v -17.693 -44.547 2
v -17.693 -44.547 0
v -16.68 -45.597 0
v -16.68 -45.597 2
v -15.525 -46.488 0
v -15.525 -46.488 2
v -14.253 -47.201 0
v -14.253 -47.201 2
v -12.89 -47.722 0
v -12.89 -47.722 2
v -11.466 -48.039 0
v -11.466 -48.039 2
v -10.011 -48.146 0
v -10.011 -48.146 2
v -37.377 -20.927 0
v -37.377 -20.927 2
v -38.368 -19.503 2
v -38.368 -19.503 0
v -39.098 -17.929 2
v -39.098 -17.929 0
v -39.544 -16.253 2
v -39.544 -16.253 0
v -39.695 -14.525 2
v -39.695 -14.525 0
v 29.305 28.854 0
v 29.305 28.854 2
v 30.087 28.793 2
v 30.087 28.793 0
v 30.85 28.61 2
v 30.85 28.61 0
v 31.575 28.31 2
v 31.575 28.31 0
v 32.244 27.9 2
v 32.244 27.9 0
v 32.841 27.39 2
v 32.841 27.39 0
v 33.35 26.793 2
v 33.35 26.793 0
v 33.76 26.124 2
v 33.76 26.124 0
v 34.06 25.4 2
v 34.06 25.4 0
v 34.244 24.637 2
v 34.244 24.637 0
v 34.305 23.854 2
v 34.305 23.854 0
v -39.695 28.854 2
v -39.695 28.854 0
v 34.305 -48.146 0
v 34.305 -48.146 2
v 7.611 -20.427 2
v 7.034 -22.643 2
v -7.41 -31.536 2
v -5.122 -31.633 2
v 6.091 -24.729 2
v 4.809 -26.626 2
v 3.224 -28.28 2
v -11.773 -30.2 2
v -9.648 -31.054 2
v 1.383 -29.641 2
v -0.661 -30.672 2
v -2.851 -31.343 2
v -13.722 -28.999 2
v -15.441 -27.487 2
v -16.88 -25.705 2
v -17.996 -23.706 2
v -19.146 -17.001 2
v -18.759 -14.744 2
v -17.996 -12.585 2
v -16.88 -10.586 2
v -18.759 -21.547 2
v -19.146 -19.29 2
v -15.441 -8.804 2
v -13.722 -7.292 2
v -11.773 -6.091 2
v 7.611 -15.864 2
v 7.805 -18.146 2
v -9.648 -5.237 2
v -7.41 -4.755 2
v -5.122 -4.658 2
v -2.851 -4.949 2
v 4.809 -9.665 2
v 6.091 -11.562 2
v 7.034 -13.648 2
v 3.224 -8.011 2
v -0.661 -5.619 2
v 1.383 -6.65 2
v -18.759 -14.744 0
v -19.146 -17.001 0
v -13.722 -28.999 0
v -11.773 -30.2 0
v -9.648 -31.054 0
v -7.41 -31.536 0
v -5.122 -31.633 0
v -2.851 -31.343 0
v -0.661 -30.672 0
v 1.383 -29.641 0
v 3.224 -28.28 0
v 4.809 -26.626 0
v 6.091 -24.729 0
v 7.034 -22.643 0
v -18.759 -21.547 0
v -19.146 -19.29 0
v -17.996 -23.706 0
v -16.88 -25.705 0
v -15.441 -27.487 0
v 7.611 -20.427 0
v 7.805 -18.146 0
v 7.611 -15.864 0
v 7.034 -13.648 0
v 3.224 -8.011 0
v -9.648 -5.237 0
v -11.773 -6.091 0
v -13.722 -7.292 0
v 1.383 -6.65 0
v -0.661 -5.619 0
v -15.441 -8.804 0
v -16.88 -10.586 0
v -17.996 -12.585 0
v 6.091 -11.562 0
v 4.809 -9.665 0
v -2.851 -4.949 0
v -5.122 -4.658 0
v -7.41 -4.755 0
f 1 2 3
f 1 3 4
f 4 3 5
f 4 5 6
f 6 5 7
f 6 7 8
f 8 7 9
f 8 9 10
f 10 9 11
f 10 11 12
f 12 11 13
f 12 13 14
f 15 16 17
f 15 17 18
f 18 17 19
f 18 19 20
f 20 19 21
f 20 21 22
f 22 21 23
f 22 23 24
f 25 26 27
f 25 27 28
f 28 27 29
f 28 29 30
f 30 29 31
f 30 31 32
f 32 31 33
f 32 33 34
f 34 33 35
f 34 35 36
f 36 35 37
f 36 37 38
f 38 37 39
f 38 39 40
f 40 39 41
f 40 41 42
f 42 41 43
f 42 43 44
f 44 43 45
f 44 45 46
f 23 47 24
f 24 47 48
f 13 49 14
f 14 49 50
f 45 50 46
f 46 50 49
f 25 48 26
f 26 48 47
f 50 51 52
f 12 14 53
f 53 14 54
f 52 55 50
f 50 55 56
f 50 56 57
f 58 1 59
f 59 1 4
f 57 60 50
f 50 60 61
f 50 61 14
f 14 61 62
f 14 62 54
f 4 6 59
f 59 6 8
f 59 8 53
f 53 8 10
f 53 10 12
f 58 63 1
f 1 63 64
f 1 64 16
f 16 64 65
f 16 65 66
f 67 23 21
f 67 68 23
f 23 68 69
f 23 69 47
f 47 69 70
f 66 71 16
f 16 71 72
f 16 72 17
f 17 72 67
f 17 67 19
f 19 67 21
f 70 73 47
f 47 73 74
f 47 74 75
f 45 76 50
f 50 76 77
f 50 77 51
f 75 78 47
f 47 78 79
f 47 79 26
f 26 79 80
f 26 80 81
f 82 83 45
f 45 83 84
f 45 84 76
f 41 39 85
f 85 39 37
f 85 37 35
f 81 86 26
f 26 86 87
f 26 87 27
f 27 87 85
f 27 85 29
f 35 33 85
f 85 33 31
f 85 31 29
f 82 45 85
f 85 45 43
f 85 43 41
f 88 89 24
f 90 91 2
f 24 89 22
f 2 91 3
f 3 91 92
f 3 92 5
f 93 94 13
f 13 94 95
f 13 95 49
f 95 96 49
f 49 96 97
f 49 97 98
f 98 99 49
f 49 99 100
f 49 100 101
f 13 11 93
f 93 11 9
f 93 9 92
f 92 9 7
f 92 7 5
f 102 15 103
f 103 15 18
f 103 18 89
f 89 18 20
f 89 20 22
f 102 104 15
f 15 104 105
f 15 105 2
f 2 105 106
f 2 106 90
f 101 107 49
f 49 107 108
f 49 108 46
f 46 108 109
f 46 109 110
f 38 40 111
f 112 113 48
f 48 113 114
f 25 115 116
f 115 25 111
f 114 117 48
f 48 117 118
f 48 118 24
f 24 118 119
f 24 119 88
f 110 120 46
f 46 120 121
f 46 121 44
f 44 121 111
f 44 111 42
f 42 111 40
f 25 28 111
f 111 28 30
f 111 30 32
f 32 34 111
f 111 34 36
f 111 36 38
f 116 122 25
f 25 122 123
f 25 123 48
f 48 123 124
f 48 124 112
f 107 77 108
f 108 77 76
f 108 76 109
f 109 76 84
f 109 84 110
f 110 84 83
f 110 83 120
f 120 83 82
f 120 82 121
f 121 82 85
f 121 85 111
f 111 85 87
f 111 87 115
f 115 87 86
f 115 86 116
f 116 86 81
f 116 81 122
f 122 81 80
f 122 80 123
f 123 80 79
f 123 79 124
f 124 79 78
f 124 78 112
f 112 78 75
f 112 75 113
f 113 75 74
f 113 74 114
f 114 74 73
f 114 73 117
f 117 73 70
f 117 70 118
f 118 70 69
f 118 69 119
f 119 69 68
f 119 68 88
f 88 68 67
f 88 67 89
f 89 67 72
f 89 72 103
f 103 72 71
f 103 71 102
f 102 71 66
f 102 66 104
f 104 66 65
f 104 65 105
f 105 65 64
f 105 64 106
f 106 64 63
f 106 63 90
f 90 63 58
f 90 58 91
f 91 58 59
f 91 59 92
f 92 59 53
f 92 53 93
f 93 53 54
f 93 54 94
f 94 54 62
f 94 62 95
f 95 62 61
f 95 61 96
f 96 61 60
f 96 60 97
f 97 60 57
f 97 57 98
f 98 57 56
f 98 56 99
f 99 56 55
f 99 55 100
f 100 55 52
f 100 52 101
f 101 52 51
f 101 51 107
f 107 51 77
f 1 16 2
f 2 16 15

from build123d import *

# Parameters (mm, degrees)
ESBO_O1_W                  = 74
ESBO_O1_H                  = 77
RESSALTO_EXTRUS_O1_DEPTH   = 2
ESBO_O2_R                  = 13.5
CORTE_EXTRUS_O2_DEPTH      = 2
CORTE_EXTRUS_O4_DEPTH      = 1
CORTE_EXTRUS_O4_DEPTH_BACK = 3
FILETE1_R                  = 5
FILETE3_R                  = 10
FILETE4_R                  = 10


with BuildPart() as part:
    # Esboço1 → Ressalto-extrusão1 (new body)
    with BuildSketch(Plane.XY):
        with Locations((-2.694889042, -9.645522388)):
            Rectangle(ESBO_O1_W, ESBO_O1_H)
    extrude(amount=RESSALTO_EXTRUS_O1_DEPTH)

    # Esboço2 → Corte-extrusão2 (cut)
    with BuildSketch(Plane.XY.offset(2)):
        with Locations((-5.694889042, -18.145522388)):
            Circle(ESBO_O2_R)
    extrude(amount=-CORTE_EXTRUS_O2_DEPTH, mode=Mode.SUBTRACT)

    # Esboço3 → Corte-extrusão4 (cut, two sides)
    with BuildSketch(Plane.XY.offset(2)) as corte_extrus_o4_sk:
        Polygon((-162.954500024, 129.766010791), (-39.694889042, -18.145522388), (-14.694889042, -48.145522388), (108.564721941, -196.057055567), (-187.258344417, -442.576277532), (-458.777566382, -116.753211174), align=None)
    extrude(amount=CORTE_EXTRUS_O4_DEPTH, mode=Mode.SUBTRACT)
    extrude(corte_extrus_o4_sk.sketch, amount=-CORTE_EXTRUS_O4_DEPTH_BACK, mode=Mode.SUBTRACT)

    # Filete1
    filete1_edges = [part.edges().sort_by_distance(p)[0] for p in [
        (34.305110958, 28.854477612, 1),
    ]]
    fillet(filete1_edges, radius=FILETE1_R)

    # Filete3
    filete3_edges = [part.edges().sort_by_distance(p)[0] for p in [
        (-39.694889042, -18.145522388, 1),
    ]]
    fillet(filete3_edges, radius=FILETE3_R)

    # Filete4
    filete4_edges = [part.edges().sort_by_distance(p)[0] for p in [
        (-14.694889042, -48.145522388, 1),
    ]]
    fillet(filete4_edges, radius=FILETE4_R)


solid = part.part
